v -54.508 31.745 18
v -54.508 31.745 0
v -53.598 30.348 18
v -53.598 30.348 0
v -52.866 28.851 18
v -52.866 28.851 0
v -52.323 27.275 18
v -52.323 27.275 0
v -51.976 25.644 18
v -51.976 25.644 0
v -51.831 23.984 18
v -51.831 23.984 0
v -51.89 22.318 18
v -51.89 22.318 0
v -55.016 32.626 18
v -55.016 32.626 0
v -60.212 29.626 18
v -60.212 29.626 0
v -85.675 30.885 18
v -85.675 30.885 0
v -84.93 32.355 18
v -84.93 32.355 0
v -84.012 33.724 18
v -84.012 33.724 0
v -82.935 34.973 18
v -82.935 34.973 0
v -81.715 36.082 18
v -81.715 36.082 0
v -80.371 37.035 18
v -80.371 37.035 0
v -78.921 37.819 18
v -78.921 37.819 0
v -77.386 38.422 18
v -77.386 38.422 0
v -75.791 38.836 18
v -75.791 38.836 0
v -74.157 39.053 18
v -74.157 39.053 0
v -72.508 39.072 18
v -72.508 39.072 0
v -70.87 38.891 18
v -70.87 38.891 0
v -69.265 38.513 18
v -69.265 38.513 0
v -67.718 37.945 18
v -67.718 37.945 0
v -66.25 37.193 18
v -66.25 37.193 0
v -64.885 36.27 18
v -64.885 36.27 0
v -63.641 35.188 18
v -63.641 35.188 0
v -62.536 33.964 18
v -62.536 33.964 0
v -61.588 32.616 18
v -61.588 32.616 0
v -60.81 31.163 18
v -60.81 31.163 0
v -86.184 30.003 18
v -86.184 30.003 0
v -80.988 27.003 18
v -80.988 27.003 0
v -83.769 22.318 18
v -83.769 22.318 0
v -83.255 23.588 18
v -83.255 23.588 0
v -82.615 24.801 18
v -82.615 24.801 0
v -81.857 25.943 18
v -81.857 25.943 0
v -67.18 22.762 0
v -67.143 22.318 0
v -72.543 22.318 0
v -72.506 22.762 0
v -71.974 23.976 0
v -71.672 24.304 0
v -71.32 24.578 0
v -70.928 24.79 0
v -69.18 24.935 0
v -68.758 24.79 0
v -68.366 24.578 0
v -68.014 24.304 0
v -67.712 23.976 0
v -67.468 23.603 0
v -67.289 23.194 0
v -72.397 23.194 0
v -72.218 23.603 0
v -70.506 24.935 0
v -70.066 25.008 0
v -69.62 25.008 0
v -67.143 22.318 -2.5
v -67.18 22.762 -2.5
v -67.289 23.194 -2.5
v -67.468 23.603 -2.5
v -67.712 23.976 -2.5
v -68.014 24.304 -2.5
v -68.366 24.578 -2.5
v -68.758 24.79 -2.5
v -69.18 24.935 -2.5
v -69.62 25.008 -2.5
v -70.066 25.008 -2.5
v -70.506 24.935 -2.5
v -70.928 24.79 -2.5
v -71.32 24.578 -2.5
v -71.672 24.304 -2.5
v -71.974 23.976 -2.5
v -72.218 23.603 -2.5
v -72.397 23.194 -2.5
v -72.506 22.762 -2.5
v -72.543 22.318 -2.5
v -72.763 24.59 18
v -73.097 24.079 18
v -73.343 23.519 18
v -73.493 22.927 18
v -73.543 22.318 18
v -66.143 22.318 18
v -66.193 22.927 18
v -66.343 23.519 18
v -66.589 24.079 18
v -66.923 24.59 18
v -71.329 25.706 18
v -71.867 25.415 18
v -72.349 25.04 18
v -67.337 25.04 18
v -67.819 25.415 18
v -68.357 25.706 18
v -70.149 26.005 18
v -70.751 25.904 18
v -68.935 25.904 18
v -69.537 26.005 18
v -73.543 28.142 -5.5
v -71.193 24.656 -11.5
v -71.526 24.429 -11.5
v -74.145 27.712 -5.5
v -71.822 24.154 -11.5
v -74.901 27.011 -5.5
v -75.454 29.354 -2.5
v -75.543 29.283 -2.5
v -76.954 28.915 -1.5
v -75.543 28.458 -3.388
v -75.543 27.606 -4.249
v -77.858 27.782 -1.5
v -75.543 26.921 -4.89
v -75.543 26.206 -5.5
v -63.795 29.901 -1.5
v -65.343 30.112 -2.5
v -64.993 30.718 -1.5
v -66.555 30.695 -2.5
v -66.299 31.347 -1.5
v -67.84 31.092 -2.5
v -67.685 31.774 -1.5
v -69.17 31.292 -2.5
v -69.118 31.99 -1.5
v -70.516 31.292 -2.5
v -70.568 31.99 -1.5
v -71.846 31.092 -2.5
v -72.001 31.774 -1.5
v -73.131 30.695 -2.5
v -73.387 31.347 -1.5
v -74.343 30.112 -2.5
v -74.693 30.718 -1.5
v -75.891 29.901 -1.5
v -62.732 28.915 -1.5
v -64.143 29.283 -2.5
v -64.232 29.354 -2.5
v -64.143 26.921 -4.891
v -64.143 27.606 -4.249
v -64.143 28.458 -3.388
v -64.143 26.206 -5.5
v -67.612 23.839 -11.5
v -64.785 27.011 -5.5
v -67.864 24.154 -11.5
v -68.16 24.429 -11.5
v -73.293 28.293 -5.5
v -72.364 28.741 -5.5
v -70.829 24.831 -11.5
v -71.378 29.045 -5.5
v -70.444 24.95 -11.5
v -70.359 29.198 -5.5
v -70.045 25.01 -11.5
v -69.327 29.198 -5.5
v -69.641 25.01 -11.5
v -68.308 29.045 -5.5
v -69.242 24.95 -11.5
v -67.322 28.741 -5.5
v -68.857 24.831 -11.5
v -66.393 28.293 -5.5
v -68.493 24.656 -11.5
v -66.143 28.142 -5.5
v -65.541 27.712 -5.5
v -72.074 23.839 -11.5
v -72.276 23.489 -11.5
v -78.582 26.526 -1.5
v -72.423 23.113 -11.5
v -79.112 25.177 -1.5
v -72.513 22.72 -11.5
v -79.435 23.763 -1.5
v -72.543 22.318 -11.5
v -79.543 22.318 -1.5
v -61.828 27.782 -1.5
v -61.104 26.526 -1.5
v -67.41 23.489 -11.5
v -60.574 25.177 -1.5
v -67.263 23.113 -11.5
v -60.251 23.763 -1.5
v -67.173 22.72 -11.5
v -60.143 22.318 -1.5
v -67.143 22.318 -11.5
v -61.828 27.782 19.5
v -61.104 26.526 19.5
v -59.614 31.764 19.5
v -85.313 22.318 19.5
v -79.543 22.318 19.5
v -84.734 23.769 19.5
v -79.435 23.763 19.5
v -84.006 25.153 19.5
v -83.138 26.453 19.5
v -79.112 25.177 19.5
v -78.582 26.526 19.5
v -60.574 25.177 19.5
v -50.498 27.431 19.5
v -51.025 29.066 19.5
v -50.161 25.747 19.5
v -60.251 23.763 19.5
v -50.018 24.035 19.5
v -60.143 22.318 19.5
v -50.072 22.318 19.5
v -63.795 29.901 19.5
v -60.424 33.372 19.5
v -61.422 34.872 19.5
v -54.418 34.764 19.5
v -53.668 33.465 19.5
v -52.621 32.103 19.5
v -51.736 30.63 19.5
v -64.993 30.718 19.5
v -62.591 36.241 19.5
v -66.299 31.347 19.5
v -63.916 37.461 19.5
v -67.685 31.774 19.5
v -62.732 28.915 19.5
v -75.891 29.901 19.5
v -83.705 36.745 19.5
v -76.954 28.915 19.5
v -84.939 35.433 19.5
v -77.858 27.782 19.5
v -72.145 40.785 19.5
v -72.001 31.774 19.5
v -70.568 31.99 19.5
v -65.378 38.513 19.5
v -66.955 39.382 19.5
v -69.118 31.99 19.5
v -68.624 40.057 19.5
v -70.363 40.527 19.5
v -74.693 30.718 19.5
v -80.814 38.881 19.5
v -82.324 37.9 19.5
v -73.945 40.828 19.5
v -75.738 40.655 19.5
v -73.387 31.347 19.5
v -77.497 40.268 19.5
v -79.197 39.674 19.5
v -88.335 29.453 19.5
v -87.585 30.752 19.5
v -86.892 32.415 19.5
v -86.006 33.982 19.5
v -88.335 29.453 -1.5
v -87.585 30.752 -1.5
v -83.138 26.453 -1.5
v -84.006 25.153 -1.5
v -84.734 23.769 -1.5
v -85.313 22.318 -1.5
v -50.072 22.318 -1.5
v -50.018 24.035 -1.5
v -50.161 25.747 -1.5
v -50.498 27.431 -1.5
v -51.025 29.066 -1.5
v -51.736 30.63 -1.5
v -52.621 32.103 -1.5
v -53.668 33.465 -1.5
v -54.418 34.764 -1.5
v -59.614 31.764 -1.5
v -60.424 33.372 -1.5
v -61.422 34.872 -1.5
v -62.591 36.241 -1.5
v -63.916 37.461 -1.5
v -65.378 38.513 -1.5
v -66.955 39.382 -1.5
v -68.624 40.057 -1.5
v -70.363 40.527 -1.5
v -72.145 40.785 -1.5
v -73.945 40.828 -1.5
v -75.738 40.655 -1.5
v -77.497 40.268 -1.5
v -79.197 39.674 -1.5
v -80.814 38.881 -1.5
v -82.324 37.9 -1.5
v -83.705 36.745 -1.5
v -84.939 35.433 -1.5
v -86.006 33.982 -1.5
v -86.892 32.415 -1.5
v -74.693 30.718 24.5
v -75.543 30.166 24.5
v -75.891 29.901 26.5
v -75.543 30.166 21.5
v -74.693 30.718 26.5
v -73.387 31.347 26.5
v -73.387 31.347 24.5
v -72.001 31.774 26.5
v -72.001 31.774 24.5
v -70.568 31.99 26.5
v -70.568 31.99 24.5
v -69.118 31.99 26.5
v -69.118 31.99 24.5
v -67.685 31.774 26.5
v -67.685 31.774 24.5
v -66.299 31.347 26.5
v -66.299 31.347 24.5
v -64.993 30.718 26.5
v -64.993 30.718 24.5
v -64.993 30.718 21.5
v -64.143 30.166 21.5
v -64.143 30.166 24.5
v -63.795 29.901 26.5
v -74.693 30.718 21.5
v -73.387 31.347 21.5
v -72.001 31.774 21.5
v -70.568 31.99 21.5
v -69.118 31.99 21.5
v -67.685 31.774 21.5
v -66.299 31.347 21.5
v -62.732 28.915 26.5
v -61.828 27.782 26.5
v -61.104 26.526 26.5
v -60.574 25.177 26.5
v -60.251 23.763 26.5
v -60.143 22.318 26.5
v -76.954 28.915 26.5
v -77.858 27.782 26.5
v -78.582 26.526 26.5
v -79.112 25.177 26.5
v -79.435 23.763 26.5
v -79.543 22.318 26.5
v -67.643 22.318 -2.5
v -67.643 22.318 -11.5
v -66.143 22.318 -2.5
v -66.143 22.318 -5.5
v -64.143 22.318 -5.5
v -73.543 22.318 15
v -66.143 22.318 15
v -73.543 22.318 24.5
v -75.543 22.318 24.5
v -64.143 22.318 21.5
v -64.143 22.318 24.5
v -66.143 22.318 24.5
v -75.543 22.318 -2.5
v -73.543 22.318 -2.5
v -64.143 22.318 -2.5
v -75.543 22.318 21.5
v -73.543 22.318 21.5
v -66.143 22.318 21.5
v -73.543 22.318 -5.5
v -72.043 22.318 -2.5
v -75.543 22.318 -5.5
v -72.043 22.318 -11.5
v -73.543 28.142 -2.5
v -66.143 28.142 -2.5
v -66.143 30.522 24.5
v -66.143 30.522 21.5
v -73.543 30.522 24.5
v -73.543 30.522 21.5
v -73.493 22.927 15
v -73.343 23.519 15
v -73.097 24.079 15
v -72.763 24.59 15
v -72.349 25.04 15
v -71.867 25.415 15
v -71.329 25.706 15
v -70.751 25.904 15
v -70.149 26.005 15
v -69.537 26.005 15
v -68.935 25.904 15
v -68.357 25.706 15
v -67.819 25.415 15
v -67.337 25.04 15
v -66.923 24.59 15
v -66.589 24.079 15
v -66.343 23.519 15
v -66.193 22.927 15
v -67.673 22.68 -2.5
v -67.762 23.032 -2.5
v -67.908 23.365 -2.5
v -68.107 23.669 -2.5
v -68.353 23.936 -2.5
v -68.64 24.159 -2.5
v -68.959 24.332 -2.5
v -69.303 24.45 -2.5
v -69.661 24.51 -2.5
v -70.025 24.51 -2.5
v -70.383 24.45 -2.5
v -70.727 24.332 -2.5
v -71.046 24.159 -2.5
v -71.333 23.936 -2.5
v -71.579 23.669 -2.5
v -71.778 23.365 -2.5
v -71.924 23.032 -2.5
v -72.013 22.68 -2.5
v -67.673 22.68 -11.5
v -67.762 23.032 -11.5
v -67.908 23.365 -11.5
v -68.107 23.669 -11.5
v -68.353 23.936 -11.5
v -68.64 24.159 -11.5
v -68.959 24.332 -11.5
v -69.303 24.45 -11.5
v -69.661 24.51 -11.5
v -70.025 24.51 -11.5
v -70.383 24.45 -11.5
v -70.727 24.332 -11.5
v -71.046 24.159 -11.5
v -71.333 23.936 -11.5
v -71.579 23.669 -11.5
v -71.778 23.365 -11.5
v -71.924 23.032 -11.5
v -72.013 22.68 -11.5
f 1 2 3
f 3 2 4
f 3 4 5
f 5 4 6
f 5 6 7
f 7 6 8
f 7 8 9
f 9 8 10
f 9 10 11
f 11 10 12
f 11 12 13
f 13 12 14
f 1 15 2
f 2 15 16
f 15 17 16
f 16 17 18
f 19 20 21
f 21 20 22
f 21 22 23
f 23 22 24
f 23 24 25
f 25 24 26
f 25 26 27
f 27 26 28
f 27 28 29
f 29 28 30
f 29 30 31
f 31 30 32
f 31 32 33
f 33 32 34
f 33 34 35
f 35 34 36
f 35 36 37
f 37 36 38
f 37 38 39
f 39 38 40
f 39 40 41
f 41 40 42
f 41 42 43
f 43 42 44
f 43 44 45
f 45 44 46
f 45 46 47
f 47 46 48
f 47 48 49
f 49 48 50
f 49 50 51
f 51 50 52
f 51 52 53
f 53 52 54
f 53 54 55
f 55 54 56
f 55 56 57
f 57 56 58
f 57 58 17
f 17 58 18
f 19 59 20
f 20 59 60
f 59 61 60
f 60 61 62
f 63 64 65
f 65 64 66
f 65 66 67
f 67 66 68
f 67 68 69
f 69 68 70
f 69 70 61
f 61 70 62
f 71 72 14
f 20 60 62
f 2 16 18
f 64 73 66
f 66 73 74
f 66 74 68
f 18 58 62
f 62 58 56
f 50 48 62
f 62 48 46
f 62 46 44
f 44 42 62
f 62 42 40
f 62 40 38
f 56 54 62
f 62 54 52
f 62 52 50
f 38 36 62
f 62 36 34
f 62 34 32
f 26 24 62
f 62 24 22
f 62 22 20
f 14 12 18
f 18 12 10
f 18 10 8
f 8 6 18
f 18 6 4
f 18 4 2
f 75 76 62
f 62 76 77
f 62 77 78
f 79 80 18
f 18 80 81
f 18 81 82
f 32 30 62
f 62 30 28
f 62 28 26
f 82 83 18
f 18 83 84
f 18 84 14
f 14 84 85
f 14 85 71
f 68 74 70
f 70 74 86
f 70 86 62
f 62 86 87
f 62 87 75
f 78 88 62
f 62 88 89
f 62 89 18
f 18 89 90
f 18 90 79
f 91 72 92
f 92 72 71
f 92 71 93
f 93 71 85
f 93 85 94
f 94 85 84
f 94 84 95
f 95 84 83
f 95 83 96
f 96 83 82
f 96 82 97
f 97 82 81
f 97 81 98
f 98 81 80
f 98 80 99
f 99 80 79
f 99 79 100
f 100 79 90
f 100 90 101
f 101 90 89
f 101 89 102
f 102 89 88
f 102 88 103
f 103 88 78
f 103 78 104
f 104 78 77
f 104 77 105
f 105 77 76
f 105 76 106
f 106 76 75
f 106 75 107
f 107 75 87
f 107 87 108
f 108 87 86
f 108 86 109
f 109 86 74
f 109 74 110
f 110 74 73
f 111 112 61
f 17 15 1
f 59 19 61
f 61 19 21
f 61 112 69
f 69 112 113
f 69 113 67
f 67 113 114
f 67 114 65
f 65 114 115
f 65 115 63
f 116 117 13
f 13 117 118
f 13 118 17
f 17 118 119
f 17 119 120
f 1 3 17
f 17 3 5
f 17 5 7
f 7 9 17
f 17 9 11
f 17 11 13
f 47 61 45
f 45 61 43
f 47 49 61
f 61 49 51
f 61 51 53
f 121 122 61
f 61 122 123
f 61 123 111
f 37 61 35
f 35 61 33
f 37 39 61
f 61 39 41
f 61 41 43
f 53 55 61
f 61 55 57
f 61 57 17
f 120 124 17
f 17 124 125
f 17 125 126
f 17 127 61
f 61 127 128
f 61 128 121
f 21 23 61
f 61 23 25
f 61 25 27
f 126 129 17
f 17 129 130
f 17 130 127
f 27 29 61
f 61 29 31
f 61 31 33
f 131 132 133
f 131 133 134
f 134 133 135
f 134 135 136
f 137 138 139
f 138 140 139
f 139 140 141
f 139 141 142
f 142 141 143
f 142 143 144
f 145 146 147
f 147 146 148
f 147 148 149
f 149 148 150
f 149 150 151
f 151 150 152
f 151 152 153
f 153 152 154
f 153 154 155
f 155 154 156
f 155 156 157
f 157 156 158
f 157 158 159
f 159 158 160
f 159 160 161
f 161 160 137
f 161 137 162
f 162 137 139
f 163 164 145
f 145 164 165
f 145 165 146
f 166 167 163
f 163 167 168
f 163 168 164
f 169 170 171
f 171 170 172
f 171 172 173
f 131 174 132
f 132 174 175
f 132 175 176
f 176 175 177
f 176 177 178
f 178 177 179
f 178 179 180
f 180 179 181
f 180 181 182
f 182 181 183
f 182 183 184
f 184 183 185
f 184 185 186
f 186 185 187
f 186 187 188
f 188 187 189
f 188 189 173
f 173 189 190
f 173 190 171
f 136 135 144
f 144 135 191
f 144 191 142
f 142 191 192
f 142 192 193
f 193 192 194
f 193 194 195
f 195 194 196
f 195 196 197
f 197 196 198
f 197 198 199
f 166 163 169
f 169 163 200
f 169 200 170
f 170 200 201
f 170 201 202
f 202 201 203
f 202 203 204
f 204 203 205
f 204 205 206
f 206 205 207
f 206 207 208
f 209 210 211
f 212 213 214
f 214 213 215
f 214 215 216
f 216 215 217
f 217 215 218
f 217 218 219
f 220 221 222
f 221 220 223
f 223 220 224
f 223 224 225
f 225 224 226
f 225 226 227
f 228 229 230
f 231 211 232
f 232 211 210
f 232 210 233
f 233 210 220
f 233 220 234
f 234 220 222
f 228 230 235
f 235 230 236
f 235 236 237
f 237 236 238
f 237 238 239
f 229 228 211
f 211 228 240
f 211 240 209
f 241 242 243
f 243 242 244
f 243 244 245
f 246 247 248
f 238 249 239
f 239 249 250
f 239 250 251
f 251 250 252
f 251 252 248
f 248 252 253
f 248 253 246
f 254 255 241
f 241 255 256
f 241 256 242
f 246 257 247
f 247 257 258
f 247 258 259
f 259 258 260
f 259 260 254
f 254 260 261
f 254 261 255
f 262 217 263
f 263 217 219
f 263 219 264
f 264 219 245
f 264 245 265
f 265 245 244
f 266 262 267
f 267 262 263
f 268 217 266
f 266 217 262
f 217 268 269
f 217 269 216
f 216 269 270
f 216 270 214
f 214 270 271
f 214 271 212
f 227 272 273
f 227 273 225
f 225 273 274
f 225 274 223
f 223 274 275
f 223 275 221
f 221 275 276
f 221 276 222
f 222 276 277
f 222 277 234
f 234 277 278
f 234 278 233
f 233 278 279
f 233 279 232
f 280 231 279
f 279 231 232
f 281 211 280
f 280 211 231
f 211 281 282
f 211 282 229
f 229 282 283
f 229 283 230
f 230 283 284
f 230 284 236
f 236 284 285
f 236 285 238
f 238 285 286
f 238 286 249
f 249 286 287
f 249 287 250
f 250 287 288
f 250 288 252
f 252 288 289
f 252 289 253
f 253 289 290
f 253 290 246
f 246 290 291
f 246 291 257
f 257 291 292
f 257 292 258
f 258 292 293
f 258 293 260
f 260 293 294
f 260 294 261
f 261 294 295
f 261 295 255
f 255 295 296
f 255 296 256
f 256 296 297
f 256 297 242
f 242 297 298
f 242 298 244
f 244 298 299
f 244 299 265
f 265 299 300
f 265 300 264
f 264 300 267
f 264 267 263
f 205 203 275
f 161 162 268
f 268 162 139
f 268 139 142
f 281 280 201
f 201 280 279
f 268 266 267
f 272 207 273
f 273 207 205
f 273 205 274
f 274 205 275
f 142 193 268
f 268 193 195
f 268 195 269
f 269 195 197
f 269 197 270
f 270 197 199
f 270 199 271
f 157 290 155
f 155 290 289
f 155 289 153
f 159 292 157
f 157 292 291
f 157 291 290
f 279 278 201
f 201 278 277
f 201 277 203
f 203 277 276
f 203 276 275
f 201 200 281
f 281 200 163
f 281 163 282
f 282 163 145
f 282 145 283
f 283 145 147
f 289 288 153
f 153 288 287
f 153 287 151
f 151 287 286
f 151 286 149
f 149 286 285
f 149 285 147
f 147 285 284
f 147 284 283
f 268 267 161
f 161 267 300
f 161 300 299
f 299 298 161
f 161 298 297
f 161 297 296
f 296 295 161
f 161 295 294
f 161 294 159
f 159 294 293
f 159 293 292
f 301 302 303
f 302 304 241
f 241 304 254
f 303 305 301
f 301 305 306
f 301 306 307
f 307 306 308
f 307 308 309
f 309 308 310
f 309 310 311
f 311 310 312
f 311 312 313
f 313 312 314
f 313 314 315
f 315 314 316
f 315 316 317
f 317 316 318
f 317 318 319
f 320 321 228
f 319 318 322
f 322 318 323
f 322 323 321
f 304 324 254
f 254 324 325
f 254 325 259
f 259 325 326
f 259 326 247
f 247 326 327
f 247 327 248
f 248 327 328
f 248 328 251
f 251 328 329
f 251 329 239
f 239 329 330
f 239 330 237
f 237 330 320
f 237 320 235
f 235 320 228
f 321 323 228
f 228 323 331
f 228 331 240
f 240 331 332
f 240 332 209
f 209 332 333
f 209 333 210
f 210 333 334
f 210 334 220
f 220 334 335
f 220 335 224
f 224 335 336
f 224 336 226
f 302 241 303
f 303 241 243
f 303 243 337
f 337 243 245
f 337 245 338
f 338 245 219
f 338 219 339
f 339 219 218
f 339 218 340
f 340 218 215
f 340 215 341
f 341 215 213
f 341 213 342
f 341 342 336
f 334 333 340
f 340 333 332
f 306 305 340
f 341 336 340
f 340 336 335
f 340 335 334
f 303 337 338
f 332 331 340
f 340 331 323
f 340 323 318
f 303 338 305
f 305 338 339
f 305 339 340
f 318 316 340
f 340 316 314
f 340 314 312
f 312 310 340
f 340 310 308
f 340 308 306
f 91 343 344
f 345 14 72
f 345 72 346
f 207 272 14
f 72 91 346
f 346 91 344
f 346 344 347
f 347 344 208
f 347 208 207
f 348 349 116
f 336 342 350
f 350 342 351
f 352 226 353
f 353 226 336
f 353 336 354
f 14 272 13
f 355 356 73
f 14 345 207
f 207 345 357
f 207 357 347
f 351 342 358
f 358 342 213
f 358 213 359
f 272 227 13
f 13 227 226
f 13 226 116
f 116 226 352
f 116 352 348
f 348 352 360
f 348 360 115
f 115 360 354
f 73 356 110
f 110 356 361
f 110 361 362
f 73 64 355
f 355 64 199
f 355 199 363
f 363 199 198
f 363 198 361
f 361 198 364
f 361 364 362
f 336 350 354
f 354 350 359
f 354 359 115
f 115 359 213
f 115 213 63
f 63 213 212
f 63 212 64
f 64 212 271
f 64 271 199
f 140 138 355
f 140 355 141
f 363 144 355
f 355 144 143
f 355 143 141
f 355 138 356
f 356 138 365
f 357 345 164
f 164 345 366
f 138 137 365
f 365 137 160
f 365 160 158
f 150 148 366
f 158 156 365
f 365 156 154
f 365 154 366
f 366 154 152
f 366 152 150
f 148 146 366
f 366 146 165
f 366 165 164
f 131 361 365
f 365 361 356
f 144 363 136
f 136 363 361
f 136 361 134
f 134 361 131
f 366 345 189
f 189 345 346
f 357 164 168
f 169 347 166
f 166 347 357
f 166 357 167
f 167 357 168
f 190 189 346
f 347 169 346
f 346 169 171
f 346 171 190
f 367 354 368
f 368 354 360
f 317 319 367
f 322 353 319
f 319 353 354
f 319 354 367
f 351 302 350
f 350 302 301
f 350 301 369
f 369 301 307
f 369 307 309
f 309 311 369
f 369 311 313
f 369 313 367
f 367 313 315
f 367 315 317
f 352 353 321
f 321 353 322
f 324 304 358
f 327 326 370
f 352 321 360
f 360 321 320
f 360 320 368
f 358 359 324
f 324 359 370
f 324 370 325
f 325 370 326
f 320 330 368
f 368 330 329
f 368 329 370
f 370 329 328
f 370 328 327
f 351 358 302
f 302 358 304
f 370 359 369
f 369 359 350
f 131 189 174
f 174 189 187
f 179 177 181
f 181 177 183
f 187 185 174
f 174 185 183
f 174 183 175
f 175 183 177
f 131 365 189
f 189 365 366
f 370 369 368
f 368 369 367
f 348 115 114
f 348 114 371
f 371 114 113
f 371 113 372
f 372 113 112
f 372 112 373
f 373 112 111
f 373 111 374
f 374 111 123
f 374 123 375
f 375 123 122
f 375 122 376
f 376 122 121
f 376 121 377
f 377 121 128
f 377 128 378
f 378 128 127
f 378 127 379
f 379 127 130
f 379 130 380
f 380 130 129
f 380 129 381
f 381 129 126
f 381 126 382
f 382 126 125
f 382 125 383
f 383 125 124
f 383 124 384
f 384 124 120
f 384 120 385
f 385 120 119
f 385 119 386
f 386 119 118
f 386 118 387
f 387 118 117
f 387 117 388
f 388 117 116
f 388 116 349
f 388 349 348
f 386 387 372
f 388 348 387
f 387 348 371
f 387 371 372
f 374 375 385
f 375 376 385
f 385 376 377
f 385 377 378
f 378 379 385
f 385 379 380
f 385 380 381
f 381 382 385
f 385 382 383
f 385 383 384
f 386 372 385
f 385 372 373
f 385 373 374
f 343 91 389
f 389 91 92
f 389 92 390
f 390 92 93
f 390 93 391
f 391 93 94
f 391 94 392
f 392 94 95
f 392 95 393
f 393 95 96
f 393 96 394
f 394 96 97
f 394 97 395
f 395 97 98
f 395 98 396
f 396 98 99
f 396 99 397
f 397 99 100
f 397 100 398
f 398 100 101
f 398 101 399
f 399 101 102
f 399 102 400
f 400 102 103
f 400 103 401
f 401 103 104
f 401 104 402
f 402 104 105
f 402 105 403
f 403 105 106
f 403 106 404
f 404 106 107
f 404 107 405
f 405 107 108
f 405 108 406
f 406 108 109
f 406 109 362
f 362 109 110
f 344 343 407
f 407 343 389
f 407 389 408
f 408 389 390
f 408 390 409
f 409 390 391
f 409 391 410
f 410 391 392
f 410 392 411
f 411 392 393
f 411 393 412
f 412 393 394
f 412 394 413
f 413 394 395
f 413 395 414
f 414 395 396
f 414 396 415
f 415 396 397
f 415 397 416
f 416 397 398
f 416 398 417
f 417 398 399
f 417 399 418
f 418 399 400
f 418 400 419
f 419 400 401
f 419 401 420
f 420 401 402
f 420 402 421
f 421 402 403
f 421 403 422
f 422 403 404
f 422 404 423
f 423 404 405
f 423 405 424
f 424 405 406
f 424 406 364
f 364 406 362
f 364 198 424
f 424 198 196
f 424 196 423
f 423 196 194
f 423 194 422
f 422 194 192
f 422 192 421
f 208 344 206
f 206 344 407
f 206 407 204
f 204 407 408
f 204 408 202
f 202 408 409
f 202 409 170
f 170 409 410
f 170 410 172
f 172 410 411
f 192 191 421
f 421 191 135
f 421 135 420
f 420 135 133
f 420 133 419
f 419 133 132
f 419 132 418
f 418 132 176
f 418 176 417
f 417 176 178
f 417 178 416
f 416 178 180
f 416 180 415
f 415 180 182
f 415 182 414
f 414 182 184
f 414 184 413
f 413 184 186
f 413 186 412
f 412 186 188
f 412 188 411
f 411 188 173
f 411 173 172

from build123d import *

# Parameters (mm, degrees)
SALIENTE_EXTRUIR1_DEPTH = 18
SALIENTE_EXTRUIR2_START = 1.5
CROQUIS2_R              = 2.7
SALIENTE_EXTRUIR2_DEPTH = 1.5
SALIENTE_EXTRUIR3_DEPTH = 1.5
CROQUIS6_W              = 5.4
CROQUIS6_H              = 1.803822617
SALIENTE_EXTRUIR7_DEPTH = 10
CROQUIS10_W             = 5.4
CROQUIS10_H             = 10
CORTAR_EXTRUIR3_DEPTH   = 10
CROQUIS12_W             = 50.345864286
CROQUIS12_H             = 43.398115734
CORTAR_EXTRUIR4_DEPTH   = 30
CROQUIS14_W             = 2
CROQUIS14_H             = 3
CORTAR_EXTRUIR5_DEPTH   = 30
CROQUIS15_W             = 3
CROQUIS15_H             = 9.965395542
CROQUIS15_H_2           = 4.625035451
CORTAR_EXTRUIR6_DEPTH   = 7.4
CROQUIS16_W             = 3.7
CROQUIS16_H             = 3
REVOLUCI_N2_ANGLE       = 180
CROQUIS17_W             = 0.5
CROQUIS17_H             = 9
REVOLUCI_N3_ANGLE       = 180


with BuildPart() as part:
    # Croquis1 → Saliente-Extruir1 (new body)
    with BuildSketch(Plane.XY):
        with BuildLine():
            Line((-53.667784589, 33.4650382), (-54.417784589, 34.764076306))
            Line((-54.417784589, 34.764076306), (-59.613937012, 31.764076306))
            ThreePointArc((-59.613937012, 31.764076306), (-73.945502317, 40.827707086), (-87.584573208, 30.752047693))
            Line((-87.584573208, 30.752047693), (-88.334573208, 29.453009587))
            Line((-88.334573208, 29.453009587), (-83.138420786, 26.453009587))
            ThreePointArc((-83.138420786, 26.453009587), (-83.82197264, 9.509694567), (-68.276660199, 2.735742387))
            Line((-68.276660199, 2.735742387), (-66.776660199, 2.735742387))
            Line((-66.776660199, 2.735742387), (-66.776660199, 8.735742387))
            ThreePointArc((-66.776660199, 8.735742387), (-51.761543041, 16.615426627), (-53.667784589, 33.4650382))
        make_face()
        with BuildLine():
            Line((-54.507549641, 31.745180452), (-55.016343575, 32.626437397))
            Line((-55.016343575, 32.626437397), (-60.212495998, 29.626437397))
            ThreePointArc((-60.212495998, 29.626437397), (-72.508207296, 39.071771198), (-85.675250182, 30.884718699))
            Line((-85.675250182, 30.884718699), (-86.184044116, 30.003461754))
            Line((-86.184044116, 30.003461754), (-80.987891693, 27.003461754))
            ThreePointArc((-80.987891693, 27.003461754), (-83.019935064, 11.632396511), (-69.346218174, 4.322929129))
            Line((-69.346218174, 4.322929129), (-68.328630306, 4.322929129))
            Line((-68.328630306, 4.322929129), (-68.328630306, 10.322929129))
            ThreePointArc((-68.328630306, 10.322929129), (-54.000875637, 16.248660571), (-54.507549641, 31.745180452))
        make_face(mode=Mode.SUBTRACT)
    extrude(amount=SALIENTE_EXTRUIR1_DEPTH)

    # Croquis2 → Saliente-Extruir2 (add)
    with BuildSketch(Plane(origin=(0, 0, 0), x_dir=(-1, 0, 0), z_dir=(0, 0, -1)).offset(SALIENTE_EXTRUIR2_START)):
        with BuildLine():
            Line((87.584573208, 30.752047693), (88.334573208, 29.453009587))
            Line((88.334573208, 29.453009587), (83.138420786, 26.453009587))
            ThreePointArc((83.138420786, 26.453009587), (83.82197264, 9.509694567), (68.276660199, 2.735742387))
            Line((68.276660199, 2.735742387), (66.776660199, 2.735742387))
            Line((66.776660199, 2.735742387), (66.776660199, 8.735742387))
            ThreePointArc((66.776660199, 8.735742387), (51.761543041, 16.615426627), (53.667784589, 33.4650382))
            Line((53.667784589, 33.4650382), (54.417784589, 34.764076306))
            Line((54.417784589, 34.764076306), (59.613937012, 31.764076306))
            ThreePointArc((59.613937012, 31.764076306), (73.945502317, 40.827707086), (87.584573208, 30.752047693))
        make_face()
        with Locations((69.843005999, 22.317609427)):
            Circle(CROQUIS2_R, mode=Mode.SUBTRACT)
    extrude(amount=-SALIENTE_EXTRUIR2_DEPTH)

    # Croquis3 → Saliente-Extruir3 (add)
    with BuildSketch(Plane.XY.offset(18)):
        with BuildLine():
            Line((-66.776660199, 8.735742387), (-66.776660199, 2.735742387))
            Line((-66.776660199, 2.735742387), (-68.276660199, 2.735742387))
            ThreePointArc((-68.276660199, 2.735742387), (-83.82197264, 9.509694567), (-83.138420786, 26.453009587))
            Line((-83.138420786, 26.453009587), (-88.334573208, 29.453009587))
            Line((-88.334573208, 29.453009587), (-87.584573208, 30.752047693))
            ThreePointArc((-87.584573208, 30.752047693), (-73.945502317, 40.827707086), (-59.613937012, 31.764076306))
            Line((-59.613937012, 31.764076306), (-54.417784589, 34.764076306))
            Line((-54.417784589, 34.764076306), (-53.667784589, 33.4650382))
            ThreePointArc((-53.667784589, 33.4650382), (-51.761543041, 16.615426627), (-66.776660199, 8.735742387))
        make_face()
    extrude(amount=SALIENTE_EXTRUIR3_DEPTH)

    # Croquis6 → Saliente-Extruir7 (add)
    with BuildSketch(Plane(origin=(0, 0, -1.5), x_dir=(-1, 0, 0), z_dir=(0, 0, -1))):
        with Locations((69.843005999, 21.415698119)):
            Rectangle(CROQUIS6_W, CROQUIS6_H)
    extrude(amount=SALIENTE_EXTRUIR7_DEPTH)

    # Croquis10 → Cortar-Extruir3 (cut)
    with BuildSketch(Plane(origin=(0, 22.317609427, 0), x_dir=(1, 0, 0), z_dir=(0, 1, 0))):
        with Locations((-69.843005999, 6.5)):
            Rectangle(CROQUIS10_W, CROQUIS10_H)
    extrude(amount=-CORTAR_EXTRUIR3_DEPTH, mode=Mode.SUBTRACT)

    # Croquis11 → Revolución1 (revolve)
    with BuildSketch(Plane(origin=(0, 22.317609427, 0), x_dir=(1, 0, 0), z_dir=(0, 1, 0)), mode=Mode.PRIVATE) as revoluci_n1_sk:
        Polygon((-72.543005999, 1.5), (-79.543005999, 1.5), (-72.543005999, 11.5), align=None)
        Polygon((-71.193005999, -19.5), (-69.843005999, -19.5), (-69.843005999, -26.5), (-71.193005999, -26.5), (-79.543005999, -26.5), (-79.543005999, -19.5), align=None)
    revolve(revoluci_n1_sk.sketch.rotate(Axis((-69.843005999, 22.317609427, 19.5), (0, 0, 1)), 180), axis=Axis((-69.843005999, 22.317609427, 19.5), (0, 0, 1)))

    # Croquis12 → Cortar-Extruir4 (cut)
    with BuildSketch(Plane(origin=(0, 22.317609427, 0), x_dir=(1, 0, 0), z_dir=(0, 1, 0))):
        with Locations((-66.462924906, -7.850212976)):
            Rectangle(CROQUIS12_W, CROQUIS12_H)
    extrude(amount=-CORTAR_EXTRUIR4_DEPTH, mode=Mode.SUBTRACT)

    # Croquis14 → Cortar-Extruir5 (cut)
    with BuildSketch(Plane.XZ.offset(-22.317609427)):
        with Locations((-74.543005999, -4)):
            Rectangle(CROQUIS14_W, CROQUIS14_H)
        with Locations((-65.143005999, -4)):
            Rectangle(CROQUIS14_W, CROQUIS14_H)
        with Locations((-65.143005999, 23)):
            Rectangle(CROQUIS14_W, CROQUIS14_H)
        with Locations((-74.543005999, 23)):
            Rectangle(CROQUIS14_W, CROQUIS14_H)
    extrude(amount=-CORTAR_EXTRUIR5_DEPTH, mode=Mode.SUBTRACT)

    # Croquis15 → Cortar-Extruir6 (cut)
    with BuildSketch(Plane(origin=(-66.143005999, 0, 0), x_dir=(0, 0, -1), z_dir=(1, 0, 0))):
        with Locations((4, 33.124395109)):
            Rectangle(CROQUIS15_W, CROQUIS15_H)
        with Locations((-23, 32.834394335)):
            Rectangle(CROQUIS15_W, CROQUIS15_H_2)
    extrude(amount=-CORTAR_EXTRUIR6_DEPTH, mode=Mode.SUBTRACT)

    # Croquis16 → Revolución2 (revolve)
    with BuildSketch(Plane.XZ.offset(-22.317609427)):
        with Locations((-71.693005999, 16.5)):
            Rectangle(CROQUIS16_W, CROQUIS16_H)
    revolve(axis=Axis((-69.843005999, 22.317609427, 15), (0, 0, -1)), revolution_arc=REVOLUCI_N2_ANGLE)

    # Croquis17 → Revolución3 (revolve)
    with BuildSketch(Plane.XZ.offset(-22.317609427)):
        with Locations((-72.293005999, -7)):
            Rectangle(CROQUIS17_W, CROQUIS17_H)
    revolve(axis=Axis((-69.843005999, 22.317609427, 0), (0, 0, -1)), revolution_arc=REVOLUCI_N3_ANGLE)


solid = part.part
